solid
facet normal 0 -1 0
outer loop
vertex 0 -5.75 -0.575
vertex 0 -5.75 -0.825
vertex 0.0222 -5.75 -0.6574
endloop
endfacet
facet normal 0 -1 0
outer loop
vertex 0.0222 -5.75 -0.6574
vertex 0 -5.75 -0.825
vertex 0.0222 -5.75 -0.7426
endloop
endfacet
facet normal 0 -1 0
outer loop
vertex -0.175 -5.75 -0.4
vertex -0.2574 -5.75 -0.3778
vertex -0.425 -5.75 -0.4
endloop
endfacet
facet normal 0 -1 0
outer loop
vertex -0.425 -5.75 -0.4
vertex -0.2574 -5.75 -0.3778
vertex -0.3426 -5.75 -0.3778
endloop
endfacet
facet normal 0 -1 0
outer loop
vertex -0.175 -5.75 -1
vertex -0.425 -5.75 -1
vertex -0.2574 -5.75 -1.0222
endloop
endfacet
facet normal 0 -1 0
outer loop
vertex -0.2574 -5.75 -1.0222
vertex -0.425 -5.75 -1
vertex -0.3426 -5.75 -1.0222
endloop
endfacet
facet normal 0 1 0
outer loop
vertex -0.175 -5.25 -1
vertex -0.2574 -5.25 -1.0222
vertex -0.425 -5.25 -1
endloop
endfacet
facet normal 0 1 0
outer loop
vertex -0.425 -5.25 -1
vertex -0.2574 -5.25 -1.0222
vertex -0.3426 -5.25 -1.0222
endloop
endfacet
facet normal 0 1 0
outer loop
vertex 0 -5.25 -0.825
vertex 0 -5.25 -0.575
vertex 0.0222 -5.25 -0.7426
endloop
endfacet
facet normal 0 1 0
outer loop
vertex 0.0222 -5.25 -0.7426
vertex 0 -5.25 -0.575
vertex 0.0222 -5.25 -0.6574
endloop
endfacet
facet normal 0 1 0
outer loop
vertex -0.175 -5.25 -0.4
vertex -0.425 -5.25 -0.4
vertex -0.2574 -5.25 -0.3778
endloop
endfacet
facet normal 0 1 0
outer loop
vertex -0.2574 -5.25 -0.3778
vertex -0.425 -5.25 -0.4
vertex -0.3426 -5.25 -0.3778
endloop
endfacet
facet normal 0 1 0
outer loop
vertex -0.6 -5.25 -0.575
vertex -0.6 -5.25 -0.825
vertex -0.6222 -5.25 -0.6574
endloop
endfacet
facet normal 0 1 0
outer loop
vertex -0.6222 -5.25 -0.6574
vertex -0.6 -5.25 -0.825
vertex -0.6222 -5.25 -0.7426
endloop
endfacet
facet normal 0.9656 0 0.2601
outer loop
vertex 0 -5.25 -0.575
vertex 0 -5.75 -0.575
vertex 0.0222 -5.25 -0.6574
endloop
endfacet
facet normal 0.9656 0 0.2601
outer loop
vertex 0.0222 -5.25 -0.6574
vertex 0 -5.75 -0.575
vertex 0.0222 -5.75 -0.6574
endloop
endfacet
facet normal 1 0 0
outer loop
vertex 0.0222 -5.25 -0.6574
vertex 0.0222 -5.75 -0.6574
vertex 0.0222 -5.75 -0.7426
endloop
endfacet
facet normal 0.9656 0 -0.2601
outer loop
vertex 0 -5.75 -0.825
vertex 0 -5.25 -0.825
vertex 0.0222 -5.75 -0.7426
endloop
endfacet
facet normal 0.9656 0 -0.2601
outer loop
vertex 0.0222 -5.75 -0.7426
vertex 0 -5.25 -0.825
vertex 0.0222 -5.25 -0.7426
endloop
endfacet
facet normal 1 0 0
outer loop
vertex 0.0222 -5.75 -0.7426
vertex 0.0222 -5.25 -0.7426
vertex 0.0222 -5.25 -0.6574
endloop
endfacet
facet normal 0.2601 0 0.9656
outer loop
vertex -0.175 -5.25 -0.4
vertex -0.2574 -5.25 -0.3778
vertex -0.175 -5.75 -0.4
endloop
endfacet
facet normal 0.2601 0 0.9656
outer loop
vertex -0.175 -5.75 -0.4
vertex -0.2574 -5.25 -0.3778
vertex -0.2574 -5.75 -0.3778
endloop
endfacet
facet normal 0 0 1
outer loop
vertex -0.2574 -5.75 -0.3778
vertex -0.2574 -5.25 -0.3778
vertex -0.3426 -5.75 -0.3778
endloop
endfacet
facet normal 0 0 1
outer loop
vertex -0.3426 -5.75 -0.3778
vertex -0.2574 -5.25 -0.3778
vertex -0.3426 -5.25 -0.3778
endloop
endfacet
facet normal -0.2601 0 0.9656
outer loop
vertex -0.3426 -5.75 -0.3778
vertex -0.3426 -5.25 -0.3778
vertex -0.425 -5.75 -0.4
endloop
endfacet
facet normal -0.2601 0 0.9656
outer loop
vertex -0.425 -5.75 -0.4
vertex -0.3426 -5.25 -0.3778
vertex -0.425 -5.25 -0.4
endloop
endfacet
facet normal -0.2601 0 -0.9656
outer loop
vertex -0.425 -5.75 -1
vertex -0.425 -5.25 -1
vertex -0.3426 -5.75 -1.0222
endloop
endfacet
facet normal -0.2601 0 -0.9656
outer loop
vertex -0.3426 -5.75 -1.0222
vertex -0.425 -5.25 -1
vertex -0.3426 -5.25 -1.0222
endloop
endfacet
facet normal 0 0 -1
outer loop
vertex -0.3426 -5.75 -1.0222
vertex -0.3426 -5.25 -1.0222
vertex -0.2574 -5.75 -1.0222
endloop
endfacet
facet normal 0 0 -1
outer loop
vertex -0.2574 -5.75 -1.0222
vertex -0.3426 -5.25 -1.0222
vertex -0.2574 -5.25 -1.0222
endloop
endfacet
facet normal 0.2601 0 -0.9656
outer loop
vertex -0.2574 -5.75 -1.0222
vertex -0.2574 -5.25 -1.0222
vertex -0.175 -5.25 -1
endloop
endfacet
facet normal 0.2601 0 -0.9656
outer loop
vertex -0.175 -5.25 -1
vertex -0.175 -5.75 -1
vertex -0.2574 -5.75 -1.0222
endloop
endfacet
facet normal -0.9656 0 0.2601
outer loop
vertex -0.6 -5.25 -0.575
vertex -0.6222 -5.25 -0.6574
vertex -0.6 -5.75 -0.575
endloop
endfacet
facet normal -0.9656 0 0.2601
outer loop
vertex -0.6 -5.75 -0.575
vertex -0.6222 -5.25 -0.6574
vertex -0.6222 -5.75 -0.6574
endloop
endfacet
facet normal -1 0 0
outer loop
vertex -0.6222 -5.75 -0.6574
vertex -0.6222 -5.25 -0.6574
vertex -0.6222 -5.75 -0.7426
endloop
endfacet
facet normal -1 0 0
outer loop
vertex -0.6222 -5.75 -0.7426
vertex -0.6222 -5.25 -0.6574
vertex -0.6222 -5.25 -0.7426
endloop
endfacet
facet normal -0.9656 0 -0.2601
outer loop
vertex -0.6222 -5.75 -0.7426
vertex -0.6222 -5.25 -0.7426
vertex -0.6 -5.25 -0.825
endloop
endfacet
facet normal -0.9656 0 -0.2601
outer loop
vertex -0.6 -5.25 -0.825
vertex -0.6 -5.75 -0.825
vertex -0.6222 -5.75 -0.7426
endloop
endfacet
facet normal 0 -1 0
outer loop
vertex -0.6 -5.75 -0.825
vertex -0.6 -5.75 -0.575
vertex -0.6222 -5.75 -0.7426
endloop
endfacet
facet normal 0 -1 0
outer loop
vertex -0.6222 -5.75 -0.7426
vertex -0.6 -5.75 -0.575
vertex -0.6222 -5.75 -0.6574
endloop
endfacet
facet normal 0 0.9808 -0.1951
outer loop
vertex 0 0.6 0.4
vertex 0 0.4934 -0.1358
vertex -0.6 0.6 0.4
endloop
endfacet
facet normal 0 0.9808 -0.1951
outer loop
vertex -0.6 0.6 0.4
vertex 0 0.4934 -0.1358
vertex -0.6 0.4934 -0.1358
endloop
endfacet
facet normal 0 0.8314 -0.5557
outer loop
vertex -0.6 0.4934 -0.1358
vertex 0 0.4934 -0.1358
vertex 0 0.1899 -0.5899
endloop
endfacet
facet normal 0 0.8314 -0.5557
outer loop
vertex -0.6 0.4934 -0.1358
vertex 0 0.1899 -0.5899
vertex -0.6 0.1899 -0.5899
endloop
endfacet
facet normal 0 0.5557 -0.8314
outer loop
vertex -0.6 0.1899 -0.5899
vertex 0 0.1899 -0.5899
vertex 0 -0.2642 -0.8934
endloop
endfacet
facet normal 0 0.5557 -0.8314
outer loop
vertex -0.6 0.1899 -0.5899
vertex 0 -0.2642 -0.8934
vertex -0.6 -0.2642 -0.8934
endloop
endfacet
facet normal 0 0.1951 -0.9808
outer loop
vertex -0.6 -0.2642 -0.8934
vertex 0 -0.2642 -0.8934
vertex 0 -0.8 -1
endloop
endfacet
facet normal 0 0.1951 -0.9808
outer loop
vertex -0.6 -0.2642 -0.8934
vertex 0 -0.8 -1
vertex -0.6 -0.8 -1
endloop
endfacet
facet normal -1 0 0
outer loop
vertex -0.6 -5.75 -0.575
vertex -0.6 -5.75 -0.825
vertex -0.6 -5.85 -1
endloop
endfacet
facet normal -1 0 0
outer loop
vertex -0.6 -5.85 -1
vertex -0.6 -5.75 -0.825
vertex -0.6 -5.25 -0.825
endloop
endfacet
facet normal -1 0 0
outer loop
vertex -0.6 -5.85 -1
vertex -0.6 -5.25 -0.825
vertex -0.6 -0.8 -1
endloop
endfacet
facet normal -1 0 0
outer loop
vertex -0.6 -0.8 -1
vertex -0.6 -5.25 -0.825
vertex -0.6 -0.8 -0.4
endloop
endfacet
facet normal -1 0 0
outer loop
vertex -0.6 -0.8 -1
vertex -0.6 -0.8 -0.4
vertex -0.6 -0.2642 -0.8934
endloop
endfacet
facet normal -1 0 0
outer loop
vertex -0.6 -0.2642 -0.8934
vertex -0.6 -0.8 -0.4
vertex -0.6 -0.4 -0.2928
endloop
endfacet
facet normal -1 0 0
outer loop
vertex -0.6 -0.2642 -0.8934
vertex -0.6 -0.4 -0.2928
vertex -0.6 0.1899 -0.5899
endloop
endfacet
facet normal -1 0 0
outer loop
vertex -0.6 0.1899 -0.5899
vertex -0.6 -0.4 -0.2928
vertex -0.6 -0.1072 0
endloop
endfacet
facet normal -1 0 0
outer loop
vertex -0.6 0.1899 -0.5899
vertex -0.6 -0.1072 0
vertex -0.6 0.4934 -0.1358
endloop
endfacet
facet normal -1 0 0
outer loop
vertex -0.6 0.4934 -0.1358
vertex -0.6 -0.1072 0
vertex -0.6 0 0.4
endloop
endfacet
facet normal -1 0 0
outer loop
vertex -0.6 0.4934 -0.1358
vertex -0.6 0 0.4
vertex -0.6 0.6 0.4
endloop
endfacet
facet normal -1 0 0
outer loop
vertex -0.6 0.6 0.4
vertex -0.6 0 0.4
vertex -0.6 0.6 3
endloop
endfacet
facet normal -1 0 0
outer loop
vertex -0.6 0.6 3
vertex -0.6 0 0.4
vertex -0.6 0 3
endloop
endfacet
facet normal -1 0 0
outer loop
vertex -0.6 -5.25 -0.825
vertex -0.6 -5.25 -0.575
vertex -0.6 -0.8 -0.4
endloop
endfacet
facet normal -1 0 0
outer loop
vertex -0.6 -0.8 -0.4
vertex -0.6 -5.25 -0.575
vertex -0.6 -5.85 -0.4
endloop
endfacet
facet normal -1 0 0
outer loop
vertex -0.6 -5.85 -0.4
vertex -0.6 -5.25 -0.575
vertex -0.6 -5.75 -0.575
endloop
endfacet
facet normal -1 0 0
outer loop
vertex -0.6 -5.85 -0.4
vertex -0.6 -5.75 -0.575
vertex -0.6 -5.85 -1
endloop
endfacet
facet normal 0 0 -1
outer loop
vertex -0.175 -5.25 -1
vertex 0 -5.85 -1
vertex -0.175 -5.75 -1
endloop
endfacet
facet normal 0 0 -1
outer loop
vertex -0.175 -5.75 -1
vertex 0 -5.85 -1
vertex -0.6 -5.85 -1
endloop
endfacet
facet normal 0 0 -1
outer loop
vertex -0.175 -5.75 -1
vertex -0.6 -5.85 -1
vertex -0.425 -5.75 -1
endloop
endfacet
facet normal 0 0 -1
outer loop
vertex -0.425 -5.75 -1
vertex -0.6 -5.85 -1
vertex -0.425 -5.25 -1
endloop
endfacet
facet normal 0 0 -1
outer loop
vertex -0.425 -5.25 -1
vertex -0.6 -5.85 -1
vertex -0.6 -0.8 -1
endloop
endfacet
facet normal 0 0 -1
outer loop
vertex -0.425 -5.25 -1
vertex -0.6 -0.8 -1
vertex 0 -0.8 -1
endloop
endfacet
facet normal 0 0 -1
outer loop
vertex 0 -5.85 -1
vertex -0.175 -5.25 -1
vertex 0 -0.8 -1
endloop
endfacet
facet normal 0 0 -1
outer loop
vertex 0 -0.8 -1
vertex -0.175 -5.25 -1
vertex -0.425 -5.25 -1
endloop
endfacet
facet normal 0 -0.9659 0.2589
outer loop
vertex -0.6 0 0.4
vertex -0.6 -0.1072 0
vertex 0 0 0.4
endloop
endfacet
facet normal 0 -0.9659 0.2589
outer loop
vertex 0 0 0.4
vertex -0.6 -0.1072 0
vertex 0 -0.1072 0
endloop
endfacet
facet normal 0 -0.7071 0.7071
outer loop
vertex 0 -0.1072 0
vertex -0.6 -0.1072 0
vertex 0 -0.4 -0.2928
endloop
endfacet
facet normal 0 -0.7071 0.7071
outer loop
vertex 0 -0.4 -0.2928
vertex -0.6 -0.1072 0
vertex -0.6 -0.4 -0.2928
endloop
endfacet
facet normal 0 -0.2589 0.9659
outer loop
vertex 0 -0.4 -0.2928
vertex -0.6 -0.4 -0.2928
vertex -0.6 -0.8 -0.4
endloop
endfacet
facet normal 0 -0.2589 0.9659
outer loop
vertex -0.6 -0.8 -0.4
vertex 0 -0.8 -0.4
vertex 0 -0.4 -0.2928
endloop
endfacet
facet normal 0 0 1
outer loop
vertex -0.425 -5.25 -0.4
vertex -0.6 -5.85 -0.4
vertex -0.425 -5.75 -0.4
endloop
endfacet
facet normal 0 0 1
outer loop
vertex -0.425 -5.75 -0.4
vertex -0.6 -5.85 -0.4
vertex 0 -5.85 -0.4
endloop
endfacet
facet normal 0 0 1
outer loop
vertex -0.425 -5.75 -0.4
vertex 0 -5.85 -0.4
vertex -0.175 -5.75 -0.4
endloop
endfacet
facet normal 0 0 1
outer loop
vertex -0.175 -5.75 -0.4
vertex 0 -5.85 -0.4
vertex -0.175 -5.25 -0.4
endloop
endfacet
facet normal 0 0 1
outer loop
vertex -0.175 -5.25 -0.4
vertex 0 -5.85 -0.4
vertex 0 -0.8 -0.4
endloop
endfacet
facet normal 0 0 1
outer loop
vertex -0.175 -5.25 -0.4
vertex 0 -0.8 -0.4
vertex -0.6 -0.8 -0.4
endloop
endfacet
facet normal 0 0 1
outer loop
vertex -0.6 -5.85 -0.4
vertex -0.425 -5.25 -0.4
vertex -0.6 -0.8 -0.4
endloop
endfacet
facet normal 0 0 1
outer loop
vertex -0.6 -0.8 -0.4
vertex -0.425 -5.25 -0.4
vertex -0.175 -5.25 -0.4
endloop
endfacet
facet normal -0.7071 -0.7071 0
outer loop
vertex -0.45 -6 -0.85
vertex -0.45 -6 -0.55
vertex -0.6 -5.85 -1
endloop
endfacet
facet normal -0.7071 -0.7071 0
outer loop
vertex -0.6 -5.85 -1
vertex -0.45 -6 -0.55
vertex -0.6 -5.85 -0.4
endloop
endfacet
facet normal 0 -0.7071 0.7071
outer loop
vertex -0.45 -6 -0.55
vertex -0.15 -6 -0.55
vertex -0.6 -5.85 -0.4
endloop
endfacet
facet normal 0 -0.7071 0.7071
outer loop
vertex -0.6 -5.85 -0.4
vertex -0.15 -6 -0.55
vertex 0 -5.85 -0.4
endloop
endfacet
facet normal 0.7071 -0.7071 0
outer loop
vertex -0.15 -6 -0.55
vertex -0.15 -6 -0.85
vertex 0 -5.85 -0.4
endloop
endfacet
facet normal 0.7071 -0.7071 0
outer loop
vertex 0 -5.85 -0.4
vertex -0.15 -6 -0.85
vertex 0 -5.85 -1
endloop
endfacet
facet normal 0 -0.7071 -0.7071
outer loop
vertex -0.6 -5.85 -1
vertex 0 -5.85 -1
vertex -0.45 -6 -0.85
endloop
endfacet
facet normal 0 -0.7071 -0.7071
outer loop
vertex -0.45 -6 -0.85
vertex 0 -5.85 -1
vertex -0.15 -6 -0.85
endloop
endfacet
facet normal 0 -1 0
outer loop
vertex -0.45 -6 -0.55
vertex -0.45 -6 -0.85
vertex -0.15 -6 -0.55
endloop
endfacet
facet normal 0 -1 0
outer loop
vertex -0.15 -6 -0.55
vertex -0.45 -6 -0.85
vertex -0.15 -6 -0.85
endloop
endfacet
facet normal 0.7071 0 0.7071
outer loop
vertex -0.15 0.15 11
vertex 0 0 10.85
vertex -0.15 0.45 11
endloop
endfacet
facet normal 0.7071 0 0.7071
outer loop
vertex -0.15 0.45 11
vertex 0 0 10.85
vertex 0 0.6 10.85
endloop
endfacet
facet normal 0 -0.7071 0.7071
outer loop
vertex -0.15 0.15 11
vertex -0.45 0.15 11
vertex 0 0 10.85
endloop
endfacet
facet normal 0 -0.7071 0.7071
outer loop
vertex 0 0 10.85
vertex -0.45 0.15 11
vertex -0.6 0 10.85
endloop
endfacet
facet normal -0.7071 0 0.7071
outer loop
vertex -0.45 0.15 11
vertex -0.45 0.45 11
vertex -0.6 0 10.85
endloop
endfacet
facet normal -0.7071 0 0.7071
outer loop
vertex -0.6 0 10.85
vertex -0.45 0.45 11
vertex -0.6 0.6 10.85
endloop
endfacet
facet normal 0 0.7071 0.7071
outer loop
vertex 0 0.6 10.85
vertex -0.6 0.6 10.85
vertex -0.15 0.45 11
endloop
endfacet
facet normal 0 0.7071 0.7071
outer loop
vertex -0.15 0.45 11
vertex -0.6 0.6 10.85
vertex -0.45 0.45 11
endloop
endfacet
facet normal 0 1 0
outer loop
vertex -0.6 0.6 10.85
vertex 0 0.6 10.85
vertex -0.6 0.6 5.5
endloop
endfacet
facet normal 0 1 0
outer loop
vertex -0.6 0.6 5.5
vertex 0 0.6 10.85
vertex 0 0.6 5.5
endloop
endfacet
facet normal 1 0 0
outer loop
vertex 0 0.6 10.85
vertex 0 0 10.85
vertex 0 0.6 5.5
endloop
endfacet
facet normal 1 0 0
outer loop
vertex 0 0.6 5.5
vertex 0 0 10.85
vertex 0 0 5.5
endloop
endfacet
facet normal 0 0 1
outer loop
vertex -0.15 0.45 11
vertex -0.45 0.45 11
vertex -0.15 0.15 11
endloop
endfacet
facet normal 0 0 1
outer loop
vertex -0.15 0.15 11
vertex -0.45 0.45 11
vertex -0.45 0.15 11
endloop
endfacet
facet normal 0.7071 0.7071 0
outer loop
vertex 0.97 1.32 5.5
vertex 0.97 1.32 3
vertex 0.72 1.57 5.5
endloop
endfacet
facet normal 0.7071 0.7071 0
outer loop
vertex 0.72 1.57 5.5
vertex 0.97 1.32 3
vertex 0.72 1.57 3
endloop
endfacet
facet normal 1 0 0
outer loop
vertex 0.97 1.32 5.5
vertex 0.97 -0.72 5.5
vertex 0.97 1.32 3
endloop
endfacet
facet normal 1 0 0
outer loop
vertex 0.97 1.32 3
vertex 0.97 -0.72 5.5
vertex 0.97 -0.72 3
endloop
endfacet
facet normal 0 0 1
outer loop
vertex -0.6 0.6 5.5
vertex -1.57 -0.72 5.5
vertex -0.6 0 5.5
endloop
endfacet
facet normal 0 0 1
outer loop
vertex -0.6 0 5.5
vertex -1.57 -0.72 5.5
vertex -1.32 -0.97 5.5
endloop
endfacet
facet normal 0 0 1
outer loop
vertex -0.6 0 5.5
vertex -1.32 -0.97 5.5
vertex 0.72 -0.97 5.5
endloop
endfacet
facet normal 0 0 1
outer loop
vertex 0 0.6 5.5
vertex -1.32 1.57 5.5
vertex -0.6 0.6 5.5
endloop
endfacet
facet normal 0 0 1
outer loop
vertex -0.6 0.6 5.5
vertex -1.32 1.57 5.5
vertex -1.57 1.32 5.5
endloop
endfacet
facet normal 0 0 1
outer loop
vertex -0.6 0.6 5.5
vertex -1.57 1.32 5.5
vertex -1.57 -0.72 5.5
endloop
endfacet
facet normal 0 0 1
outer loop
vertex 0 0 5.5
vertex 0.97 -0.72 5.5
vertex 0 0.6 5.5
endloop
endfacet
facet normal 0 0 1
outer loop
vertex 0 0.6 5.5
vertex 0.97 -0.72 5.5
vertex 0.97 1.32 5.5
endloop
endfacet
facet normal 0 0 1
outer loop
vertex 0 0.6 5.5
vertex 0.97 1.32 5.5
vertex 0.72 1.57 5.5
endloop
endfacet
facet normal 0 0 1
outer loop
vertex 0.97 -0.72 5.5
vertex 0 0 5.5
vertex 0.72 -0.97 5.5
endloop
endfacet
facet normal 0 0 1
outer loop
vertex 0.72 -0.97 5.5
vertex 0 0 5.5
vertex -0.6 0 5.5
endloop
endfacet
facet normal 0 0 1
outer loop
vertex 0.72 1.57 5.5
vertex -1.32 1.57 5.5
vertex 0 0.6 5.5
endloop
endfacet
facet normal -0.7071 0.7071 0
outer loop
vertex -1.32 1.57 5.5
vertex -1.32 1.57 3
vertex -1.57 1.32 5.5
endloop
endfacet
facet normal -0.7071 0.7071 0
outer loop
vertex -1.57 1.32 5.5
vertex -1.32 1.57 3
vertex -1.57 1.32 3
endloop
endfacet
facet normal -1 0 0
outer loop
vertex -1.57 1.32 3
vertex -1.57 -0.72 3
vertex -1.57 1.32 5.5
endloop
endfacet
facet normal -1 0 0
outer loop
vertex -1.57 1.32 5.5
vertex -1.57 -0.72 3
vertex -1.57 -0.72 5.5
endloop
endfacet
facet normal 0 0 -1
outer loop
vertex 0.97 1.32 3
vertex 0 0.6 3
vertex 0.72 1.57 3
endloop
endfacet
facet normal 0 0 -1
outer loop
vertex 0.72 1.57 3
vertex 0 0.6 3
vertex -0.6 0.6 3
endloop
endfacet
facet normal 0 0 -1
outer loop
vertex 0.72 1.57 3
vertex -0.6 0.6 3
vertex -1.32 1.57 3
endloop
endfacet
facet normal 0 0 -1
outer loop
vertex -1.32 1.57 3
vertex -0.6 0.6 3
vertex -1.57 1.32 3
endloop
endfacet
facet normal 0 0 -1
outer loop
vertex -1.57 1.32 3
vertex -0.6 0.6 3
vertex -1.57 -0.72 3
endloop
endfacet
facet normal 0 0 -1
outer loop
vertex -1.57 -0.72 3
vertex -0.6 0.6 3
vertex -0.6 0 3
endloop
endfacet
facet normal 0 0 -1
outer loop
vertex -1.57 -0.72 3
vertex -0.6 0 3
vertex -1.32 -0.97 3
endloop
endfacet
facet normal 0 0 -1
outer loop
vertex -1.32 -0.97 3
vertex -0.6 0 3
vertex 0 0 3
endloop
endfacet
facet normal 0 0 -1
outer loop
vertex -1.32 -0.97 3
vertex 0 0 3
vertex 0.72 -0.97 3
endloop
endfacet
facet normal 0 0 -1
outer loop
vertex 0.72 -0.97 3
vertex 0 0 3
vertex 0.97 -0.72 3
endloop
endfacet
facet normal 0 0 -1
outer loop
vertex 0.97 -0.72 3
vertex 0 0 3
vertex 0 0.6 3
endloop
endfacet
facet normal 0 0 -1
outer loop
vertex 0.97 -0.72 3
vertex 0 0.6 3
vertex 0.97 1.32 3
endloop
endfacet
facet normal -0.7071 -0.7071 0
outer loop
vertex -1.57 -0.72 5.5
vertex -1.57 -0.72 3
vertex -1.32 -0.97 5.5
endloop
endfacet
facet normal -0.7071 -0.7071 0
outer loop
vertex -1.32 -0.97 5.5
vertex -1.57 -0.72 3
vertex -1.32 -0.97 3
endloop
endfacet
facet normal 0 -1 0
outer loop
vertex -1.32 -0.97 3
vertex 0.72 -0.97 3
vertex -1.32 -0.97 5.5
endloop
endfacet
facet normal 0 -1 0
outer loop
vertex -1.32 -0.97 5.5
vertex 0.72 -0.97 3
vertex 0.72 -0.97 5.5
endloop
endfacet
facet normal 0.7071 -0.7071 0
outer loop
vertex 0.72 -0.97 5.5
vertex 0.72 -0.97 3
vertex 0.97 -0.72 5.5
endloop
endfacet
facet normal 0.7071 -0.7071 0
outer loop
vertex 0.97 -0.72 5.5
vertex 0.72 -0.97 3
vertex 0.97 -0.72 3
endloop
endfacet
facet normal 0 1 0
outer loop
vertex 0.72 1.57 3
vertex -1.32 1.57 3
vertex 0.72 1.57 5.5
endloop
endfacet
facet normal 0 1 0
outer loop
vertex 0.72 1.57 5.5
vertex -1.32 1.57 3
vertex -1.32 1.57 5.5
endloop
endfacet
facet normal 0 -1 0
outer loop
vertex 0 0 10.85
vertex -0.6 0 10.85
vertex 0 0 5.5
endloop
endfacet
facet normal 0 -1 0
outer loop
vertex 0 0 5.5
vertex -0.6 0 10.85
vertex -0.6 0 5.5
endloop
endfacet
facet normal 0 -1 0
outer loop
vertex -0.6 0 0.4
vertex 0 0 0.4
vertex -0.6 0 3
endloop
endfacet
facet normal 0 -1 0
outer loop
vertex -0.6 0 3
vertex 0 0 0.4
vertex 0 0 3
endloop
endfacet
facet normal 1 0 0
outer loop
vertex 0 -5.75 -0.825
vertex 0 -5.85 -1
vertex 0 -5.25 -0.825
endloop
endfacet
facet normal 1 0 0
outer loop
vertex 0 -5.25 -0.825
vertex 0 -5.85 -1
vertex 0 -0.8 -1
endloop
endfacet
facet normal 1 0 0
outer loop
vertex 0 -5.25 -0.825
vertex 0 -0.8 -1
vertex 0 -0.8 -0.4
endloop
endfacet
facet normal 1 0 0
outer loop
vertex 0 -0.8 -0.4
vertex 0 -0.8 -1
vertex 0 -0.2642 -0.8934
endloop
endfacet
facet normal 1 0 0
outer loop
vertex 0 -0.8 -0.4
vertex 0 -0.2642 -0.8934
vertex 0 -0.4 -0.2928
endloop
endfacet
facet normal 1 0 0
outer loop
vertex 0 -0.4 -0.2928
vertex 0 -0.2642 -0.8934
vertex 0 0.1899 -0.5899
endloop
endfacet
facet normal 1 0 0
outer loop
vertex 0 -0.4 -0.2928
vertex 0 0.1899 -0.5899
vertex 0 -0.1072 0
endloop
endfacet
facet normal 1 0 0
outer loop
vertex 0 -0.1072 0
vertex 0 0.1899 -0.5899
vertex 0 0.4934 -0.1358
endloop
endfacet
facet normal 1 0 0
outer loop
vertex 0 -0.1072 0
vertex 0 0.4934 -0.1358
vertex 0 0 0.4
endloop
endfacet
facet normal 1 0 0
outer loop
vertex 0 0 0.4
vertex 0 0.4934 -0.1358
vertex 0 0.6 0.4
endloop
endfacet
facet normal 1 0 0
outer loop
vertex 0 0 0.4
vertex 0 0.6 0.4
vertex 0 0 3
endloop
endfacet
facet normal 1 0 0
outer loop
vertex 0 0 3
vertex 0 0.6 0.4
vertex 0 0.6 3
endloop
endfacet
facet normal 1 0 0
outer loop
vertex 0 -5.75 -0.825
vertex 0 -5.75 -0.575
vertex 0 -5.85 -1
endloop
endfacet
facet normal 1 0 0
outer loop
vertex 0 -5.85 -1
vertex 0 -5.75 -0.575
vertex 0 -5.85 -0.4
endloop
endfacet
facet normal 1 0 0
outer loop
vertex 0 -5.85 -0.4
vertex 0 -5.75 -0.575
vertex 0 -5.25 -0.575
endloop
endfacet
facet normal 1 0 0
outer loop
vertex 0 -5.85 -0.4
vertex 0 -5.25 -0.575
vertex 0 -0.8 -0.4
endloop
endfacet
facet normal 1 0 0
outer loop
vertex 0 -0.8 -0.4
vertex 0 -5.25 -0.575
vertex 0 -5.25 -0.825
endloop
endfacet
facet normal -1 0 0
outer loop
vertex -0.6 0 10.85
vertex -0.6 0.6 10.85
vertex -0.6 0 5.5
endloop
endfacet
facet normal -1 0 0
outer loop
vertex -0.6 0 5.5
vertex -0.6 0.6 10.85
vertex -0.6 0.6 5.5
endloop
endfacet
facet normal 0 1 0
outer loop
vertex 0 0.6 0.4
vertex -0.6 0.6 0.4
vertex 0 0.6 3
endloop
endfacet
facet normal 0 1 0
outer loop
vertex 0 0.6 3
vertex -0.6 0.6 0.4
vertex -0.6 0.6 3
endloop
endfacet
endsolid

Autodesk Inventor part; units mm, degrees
ref_plane "YZ Plane" through (0, 0, 0) normal (1, 0, 0) x (0, 1, 0)
sketch "Skizze2" plane through (0, 0, 0) normal (0, 0, 1) x (1, 0, 0)
  line L0 (0, 0) -> (-0.6, 0)
  line L1 (-0.6, 0) -> (-0.6, 0.6)
  line L2 (-0.6, 0.6) -> (0, 0.6)
  line L3 (0, 0.6) -> (0, 0)
  dimension "d0" = 0.6
  dimension "d1" = 0.6
extrude "Extrusion1" add sketch "Skizze2" along normal blind 11
ref_plane "Arbeitsebene1" through (0, 0, 3) normal (0, 0, -1) x (-1, 0, 0)
sketch "Skizze3" plane through (0, 0, 3) normal (0, 0, -1) x (-1, 0, 0)
  line L0 (1.57, 1.57) -> (-0.97, 1.57)
  line L1 (-0.97, 1.57) -> (-0.97, -0.97)
  line L2 (-0.97, -0.97) -> (1.57, -0.97)
  line L3 (1.57, -0.97) -> (1.57, 1.57)
  line L4 (0.6, 0) -> (0.6, 0.6) projected
  line L5 (0, 0.6) -> (0.6, 0.6) projected
  point P0 (0, 0)
  dimension "d5" = 2.54
  dimension "d6" = 2.54
  dimension "d7" = 0.97
  dimension "d8" = 0.97
extrude "Extrusion2" add sketch "Skizze3" against normal blind 2.5
chamfer "Fase1" distance 0.25 angle 45 4 edges at (0.97, -0.97, 4.25) (-1.57, -0.97, 4.25) (-1.57, 1.57, 4.25) (0.97, 1.57, 4.25)
sketch "Skizze6" plane through (0, 0, 0) normal (0, 0, -1) x (-1, 0, 0)
  line L0 (0, 0.6) -> (0, 0) projected
  line L1 (0, 0.6) -> (0.6, 0.6)
  line L2 (0.6, 0.6) -> (0.6, 0)
  line L3 (0.6, 0) -> (0, 0)
  line L4 (0, 0) -> (0, 0.6)
extrude "Extrusion4" add sketch "Skizze6" along normal blind 1
sketch "Skizze7" plane through (-0.6, 0, 3) normal (0, -1, 0) x (1, 0, 0)
  line L0 (0.6, -4) -> (0, -4) projected
  line L1 (0.6, -4) -> (0, -4)
  line L2 (0, -4) -> (0, -3.4)
  line L3 (0, -3.4) -> (0.6, -3.4)
  line L4 (0.6, -3.4) -> (0.6, -4)
  point P0 (0.6, -3)
  dimension "d27" = 0.6
extrude "Extrusion5" add sketch "Skizze7" along normal blind 6
chamfer "Fase3" distance 0.15 angle 45 8 edges at (-0.6, 0.3, 11) (-0.3, 0, 11) (0, 0.3, 11) (-0.3, 0.6, 11) (0, -6, -0.7) (-0.3, -6, -0.4) (-0.6, -6, -0.7) (-0.3, -6, -1)
fillet "Rundung1" radius 0.8 1 edges at (-0.3, 0, -0.4)
fillet "Rundung2" radius 1.4 1 edges at (-0.3, 0.6, -1)
ref_plane "Arbeitsebene2" through (-0.6, -5.75, 3) normal (0, -1, 0) x (1, 0, 0)
sketch "Skizze8" plane through (-0.6, -5.75, 3) normal (0, -1, 0) x (1, 0, 0)
  circle A0 centre (0.3, -3.7) radius 0.325
  line L0 (0, -4) -> (0.6, -4) projected
  line L1 (0, -3.4) -> (0, -4) projected
  point P0 (0.6, -3)
  dimension "d33" = 0.65
  dimension "d34" = 0.3
  dimension "d35" = 0.3
extrude "Extrusion6" add sketch "Skizze8" against normal blind 0.5 contours A0 L0 L1 | L1 A0 | A0 L0 picked at (0.321, -3.7679)
properties part number "Stiftleiste_Male_90"
